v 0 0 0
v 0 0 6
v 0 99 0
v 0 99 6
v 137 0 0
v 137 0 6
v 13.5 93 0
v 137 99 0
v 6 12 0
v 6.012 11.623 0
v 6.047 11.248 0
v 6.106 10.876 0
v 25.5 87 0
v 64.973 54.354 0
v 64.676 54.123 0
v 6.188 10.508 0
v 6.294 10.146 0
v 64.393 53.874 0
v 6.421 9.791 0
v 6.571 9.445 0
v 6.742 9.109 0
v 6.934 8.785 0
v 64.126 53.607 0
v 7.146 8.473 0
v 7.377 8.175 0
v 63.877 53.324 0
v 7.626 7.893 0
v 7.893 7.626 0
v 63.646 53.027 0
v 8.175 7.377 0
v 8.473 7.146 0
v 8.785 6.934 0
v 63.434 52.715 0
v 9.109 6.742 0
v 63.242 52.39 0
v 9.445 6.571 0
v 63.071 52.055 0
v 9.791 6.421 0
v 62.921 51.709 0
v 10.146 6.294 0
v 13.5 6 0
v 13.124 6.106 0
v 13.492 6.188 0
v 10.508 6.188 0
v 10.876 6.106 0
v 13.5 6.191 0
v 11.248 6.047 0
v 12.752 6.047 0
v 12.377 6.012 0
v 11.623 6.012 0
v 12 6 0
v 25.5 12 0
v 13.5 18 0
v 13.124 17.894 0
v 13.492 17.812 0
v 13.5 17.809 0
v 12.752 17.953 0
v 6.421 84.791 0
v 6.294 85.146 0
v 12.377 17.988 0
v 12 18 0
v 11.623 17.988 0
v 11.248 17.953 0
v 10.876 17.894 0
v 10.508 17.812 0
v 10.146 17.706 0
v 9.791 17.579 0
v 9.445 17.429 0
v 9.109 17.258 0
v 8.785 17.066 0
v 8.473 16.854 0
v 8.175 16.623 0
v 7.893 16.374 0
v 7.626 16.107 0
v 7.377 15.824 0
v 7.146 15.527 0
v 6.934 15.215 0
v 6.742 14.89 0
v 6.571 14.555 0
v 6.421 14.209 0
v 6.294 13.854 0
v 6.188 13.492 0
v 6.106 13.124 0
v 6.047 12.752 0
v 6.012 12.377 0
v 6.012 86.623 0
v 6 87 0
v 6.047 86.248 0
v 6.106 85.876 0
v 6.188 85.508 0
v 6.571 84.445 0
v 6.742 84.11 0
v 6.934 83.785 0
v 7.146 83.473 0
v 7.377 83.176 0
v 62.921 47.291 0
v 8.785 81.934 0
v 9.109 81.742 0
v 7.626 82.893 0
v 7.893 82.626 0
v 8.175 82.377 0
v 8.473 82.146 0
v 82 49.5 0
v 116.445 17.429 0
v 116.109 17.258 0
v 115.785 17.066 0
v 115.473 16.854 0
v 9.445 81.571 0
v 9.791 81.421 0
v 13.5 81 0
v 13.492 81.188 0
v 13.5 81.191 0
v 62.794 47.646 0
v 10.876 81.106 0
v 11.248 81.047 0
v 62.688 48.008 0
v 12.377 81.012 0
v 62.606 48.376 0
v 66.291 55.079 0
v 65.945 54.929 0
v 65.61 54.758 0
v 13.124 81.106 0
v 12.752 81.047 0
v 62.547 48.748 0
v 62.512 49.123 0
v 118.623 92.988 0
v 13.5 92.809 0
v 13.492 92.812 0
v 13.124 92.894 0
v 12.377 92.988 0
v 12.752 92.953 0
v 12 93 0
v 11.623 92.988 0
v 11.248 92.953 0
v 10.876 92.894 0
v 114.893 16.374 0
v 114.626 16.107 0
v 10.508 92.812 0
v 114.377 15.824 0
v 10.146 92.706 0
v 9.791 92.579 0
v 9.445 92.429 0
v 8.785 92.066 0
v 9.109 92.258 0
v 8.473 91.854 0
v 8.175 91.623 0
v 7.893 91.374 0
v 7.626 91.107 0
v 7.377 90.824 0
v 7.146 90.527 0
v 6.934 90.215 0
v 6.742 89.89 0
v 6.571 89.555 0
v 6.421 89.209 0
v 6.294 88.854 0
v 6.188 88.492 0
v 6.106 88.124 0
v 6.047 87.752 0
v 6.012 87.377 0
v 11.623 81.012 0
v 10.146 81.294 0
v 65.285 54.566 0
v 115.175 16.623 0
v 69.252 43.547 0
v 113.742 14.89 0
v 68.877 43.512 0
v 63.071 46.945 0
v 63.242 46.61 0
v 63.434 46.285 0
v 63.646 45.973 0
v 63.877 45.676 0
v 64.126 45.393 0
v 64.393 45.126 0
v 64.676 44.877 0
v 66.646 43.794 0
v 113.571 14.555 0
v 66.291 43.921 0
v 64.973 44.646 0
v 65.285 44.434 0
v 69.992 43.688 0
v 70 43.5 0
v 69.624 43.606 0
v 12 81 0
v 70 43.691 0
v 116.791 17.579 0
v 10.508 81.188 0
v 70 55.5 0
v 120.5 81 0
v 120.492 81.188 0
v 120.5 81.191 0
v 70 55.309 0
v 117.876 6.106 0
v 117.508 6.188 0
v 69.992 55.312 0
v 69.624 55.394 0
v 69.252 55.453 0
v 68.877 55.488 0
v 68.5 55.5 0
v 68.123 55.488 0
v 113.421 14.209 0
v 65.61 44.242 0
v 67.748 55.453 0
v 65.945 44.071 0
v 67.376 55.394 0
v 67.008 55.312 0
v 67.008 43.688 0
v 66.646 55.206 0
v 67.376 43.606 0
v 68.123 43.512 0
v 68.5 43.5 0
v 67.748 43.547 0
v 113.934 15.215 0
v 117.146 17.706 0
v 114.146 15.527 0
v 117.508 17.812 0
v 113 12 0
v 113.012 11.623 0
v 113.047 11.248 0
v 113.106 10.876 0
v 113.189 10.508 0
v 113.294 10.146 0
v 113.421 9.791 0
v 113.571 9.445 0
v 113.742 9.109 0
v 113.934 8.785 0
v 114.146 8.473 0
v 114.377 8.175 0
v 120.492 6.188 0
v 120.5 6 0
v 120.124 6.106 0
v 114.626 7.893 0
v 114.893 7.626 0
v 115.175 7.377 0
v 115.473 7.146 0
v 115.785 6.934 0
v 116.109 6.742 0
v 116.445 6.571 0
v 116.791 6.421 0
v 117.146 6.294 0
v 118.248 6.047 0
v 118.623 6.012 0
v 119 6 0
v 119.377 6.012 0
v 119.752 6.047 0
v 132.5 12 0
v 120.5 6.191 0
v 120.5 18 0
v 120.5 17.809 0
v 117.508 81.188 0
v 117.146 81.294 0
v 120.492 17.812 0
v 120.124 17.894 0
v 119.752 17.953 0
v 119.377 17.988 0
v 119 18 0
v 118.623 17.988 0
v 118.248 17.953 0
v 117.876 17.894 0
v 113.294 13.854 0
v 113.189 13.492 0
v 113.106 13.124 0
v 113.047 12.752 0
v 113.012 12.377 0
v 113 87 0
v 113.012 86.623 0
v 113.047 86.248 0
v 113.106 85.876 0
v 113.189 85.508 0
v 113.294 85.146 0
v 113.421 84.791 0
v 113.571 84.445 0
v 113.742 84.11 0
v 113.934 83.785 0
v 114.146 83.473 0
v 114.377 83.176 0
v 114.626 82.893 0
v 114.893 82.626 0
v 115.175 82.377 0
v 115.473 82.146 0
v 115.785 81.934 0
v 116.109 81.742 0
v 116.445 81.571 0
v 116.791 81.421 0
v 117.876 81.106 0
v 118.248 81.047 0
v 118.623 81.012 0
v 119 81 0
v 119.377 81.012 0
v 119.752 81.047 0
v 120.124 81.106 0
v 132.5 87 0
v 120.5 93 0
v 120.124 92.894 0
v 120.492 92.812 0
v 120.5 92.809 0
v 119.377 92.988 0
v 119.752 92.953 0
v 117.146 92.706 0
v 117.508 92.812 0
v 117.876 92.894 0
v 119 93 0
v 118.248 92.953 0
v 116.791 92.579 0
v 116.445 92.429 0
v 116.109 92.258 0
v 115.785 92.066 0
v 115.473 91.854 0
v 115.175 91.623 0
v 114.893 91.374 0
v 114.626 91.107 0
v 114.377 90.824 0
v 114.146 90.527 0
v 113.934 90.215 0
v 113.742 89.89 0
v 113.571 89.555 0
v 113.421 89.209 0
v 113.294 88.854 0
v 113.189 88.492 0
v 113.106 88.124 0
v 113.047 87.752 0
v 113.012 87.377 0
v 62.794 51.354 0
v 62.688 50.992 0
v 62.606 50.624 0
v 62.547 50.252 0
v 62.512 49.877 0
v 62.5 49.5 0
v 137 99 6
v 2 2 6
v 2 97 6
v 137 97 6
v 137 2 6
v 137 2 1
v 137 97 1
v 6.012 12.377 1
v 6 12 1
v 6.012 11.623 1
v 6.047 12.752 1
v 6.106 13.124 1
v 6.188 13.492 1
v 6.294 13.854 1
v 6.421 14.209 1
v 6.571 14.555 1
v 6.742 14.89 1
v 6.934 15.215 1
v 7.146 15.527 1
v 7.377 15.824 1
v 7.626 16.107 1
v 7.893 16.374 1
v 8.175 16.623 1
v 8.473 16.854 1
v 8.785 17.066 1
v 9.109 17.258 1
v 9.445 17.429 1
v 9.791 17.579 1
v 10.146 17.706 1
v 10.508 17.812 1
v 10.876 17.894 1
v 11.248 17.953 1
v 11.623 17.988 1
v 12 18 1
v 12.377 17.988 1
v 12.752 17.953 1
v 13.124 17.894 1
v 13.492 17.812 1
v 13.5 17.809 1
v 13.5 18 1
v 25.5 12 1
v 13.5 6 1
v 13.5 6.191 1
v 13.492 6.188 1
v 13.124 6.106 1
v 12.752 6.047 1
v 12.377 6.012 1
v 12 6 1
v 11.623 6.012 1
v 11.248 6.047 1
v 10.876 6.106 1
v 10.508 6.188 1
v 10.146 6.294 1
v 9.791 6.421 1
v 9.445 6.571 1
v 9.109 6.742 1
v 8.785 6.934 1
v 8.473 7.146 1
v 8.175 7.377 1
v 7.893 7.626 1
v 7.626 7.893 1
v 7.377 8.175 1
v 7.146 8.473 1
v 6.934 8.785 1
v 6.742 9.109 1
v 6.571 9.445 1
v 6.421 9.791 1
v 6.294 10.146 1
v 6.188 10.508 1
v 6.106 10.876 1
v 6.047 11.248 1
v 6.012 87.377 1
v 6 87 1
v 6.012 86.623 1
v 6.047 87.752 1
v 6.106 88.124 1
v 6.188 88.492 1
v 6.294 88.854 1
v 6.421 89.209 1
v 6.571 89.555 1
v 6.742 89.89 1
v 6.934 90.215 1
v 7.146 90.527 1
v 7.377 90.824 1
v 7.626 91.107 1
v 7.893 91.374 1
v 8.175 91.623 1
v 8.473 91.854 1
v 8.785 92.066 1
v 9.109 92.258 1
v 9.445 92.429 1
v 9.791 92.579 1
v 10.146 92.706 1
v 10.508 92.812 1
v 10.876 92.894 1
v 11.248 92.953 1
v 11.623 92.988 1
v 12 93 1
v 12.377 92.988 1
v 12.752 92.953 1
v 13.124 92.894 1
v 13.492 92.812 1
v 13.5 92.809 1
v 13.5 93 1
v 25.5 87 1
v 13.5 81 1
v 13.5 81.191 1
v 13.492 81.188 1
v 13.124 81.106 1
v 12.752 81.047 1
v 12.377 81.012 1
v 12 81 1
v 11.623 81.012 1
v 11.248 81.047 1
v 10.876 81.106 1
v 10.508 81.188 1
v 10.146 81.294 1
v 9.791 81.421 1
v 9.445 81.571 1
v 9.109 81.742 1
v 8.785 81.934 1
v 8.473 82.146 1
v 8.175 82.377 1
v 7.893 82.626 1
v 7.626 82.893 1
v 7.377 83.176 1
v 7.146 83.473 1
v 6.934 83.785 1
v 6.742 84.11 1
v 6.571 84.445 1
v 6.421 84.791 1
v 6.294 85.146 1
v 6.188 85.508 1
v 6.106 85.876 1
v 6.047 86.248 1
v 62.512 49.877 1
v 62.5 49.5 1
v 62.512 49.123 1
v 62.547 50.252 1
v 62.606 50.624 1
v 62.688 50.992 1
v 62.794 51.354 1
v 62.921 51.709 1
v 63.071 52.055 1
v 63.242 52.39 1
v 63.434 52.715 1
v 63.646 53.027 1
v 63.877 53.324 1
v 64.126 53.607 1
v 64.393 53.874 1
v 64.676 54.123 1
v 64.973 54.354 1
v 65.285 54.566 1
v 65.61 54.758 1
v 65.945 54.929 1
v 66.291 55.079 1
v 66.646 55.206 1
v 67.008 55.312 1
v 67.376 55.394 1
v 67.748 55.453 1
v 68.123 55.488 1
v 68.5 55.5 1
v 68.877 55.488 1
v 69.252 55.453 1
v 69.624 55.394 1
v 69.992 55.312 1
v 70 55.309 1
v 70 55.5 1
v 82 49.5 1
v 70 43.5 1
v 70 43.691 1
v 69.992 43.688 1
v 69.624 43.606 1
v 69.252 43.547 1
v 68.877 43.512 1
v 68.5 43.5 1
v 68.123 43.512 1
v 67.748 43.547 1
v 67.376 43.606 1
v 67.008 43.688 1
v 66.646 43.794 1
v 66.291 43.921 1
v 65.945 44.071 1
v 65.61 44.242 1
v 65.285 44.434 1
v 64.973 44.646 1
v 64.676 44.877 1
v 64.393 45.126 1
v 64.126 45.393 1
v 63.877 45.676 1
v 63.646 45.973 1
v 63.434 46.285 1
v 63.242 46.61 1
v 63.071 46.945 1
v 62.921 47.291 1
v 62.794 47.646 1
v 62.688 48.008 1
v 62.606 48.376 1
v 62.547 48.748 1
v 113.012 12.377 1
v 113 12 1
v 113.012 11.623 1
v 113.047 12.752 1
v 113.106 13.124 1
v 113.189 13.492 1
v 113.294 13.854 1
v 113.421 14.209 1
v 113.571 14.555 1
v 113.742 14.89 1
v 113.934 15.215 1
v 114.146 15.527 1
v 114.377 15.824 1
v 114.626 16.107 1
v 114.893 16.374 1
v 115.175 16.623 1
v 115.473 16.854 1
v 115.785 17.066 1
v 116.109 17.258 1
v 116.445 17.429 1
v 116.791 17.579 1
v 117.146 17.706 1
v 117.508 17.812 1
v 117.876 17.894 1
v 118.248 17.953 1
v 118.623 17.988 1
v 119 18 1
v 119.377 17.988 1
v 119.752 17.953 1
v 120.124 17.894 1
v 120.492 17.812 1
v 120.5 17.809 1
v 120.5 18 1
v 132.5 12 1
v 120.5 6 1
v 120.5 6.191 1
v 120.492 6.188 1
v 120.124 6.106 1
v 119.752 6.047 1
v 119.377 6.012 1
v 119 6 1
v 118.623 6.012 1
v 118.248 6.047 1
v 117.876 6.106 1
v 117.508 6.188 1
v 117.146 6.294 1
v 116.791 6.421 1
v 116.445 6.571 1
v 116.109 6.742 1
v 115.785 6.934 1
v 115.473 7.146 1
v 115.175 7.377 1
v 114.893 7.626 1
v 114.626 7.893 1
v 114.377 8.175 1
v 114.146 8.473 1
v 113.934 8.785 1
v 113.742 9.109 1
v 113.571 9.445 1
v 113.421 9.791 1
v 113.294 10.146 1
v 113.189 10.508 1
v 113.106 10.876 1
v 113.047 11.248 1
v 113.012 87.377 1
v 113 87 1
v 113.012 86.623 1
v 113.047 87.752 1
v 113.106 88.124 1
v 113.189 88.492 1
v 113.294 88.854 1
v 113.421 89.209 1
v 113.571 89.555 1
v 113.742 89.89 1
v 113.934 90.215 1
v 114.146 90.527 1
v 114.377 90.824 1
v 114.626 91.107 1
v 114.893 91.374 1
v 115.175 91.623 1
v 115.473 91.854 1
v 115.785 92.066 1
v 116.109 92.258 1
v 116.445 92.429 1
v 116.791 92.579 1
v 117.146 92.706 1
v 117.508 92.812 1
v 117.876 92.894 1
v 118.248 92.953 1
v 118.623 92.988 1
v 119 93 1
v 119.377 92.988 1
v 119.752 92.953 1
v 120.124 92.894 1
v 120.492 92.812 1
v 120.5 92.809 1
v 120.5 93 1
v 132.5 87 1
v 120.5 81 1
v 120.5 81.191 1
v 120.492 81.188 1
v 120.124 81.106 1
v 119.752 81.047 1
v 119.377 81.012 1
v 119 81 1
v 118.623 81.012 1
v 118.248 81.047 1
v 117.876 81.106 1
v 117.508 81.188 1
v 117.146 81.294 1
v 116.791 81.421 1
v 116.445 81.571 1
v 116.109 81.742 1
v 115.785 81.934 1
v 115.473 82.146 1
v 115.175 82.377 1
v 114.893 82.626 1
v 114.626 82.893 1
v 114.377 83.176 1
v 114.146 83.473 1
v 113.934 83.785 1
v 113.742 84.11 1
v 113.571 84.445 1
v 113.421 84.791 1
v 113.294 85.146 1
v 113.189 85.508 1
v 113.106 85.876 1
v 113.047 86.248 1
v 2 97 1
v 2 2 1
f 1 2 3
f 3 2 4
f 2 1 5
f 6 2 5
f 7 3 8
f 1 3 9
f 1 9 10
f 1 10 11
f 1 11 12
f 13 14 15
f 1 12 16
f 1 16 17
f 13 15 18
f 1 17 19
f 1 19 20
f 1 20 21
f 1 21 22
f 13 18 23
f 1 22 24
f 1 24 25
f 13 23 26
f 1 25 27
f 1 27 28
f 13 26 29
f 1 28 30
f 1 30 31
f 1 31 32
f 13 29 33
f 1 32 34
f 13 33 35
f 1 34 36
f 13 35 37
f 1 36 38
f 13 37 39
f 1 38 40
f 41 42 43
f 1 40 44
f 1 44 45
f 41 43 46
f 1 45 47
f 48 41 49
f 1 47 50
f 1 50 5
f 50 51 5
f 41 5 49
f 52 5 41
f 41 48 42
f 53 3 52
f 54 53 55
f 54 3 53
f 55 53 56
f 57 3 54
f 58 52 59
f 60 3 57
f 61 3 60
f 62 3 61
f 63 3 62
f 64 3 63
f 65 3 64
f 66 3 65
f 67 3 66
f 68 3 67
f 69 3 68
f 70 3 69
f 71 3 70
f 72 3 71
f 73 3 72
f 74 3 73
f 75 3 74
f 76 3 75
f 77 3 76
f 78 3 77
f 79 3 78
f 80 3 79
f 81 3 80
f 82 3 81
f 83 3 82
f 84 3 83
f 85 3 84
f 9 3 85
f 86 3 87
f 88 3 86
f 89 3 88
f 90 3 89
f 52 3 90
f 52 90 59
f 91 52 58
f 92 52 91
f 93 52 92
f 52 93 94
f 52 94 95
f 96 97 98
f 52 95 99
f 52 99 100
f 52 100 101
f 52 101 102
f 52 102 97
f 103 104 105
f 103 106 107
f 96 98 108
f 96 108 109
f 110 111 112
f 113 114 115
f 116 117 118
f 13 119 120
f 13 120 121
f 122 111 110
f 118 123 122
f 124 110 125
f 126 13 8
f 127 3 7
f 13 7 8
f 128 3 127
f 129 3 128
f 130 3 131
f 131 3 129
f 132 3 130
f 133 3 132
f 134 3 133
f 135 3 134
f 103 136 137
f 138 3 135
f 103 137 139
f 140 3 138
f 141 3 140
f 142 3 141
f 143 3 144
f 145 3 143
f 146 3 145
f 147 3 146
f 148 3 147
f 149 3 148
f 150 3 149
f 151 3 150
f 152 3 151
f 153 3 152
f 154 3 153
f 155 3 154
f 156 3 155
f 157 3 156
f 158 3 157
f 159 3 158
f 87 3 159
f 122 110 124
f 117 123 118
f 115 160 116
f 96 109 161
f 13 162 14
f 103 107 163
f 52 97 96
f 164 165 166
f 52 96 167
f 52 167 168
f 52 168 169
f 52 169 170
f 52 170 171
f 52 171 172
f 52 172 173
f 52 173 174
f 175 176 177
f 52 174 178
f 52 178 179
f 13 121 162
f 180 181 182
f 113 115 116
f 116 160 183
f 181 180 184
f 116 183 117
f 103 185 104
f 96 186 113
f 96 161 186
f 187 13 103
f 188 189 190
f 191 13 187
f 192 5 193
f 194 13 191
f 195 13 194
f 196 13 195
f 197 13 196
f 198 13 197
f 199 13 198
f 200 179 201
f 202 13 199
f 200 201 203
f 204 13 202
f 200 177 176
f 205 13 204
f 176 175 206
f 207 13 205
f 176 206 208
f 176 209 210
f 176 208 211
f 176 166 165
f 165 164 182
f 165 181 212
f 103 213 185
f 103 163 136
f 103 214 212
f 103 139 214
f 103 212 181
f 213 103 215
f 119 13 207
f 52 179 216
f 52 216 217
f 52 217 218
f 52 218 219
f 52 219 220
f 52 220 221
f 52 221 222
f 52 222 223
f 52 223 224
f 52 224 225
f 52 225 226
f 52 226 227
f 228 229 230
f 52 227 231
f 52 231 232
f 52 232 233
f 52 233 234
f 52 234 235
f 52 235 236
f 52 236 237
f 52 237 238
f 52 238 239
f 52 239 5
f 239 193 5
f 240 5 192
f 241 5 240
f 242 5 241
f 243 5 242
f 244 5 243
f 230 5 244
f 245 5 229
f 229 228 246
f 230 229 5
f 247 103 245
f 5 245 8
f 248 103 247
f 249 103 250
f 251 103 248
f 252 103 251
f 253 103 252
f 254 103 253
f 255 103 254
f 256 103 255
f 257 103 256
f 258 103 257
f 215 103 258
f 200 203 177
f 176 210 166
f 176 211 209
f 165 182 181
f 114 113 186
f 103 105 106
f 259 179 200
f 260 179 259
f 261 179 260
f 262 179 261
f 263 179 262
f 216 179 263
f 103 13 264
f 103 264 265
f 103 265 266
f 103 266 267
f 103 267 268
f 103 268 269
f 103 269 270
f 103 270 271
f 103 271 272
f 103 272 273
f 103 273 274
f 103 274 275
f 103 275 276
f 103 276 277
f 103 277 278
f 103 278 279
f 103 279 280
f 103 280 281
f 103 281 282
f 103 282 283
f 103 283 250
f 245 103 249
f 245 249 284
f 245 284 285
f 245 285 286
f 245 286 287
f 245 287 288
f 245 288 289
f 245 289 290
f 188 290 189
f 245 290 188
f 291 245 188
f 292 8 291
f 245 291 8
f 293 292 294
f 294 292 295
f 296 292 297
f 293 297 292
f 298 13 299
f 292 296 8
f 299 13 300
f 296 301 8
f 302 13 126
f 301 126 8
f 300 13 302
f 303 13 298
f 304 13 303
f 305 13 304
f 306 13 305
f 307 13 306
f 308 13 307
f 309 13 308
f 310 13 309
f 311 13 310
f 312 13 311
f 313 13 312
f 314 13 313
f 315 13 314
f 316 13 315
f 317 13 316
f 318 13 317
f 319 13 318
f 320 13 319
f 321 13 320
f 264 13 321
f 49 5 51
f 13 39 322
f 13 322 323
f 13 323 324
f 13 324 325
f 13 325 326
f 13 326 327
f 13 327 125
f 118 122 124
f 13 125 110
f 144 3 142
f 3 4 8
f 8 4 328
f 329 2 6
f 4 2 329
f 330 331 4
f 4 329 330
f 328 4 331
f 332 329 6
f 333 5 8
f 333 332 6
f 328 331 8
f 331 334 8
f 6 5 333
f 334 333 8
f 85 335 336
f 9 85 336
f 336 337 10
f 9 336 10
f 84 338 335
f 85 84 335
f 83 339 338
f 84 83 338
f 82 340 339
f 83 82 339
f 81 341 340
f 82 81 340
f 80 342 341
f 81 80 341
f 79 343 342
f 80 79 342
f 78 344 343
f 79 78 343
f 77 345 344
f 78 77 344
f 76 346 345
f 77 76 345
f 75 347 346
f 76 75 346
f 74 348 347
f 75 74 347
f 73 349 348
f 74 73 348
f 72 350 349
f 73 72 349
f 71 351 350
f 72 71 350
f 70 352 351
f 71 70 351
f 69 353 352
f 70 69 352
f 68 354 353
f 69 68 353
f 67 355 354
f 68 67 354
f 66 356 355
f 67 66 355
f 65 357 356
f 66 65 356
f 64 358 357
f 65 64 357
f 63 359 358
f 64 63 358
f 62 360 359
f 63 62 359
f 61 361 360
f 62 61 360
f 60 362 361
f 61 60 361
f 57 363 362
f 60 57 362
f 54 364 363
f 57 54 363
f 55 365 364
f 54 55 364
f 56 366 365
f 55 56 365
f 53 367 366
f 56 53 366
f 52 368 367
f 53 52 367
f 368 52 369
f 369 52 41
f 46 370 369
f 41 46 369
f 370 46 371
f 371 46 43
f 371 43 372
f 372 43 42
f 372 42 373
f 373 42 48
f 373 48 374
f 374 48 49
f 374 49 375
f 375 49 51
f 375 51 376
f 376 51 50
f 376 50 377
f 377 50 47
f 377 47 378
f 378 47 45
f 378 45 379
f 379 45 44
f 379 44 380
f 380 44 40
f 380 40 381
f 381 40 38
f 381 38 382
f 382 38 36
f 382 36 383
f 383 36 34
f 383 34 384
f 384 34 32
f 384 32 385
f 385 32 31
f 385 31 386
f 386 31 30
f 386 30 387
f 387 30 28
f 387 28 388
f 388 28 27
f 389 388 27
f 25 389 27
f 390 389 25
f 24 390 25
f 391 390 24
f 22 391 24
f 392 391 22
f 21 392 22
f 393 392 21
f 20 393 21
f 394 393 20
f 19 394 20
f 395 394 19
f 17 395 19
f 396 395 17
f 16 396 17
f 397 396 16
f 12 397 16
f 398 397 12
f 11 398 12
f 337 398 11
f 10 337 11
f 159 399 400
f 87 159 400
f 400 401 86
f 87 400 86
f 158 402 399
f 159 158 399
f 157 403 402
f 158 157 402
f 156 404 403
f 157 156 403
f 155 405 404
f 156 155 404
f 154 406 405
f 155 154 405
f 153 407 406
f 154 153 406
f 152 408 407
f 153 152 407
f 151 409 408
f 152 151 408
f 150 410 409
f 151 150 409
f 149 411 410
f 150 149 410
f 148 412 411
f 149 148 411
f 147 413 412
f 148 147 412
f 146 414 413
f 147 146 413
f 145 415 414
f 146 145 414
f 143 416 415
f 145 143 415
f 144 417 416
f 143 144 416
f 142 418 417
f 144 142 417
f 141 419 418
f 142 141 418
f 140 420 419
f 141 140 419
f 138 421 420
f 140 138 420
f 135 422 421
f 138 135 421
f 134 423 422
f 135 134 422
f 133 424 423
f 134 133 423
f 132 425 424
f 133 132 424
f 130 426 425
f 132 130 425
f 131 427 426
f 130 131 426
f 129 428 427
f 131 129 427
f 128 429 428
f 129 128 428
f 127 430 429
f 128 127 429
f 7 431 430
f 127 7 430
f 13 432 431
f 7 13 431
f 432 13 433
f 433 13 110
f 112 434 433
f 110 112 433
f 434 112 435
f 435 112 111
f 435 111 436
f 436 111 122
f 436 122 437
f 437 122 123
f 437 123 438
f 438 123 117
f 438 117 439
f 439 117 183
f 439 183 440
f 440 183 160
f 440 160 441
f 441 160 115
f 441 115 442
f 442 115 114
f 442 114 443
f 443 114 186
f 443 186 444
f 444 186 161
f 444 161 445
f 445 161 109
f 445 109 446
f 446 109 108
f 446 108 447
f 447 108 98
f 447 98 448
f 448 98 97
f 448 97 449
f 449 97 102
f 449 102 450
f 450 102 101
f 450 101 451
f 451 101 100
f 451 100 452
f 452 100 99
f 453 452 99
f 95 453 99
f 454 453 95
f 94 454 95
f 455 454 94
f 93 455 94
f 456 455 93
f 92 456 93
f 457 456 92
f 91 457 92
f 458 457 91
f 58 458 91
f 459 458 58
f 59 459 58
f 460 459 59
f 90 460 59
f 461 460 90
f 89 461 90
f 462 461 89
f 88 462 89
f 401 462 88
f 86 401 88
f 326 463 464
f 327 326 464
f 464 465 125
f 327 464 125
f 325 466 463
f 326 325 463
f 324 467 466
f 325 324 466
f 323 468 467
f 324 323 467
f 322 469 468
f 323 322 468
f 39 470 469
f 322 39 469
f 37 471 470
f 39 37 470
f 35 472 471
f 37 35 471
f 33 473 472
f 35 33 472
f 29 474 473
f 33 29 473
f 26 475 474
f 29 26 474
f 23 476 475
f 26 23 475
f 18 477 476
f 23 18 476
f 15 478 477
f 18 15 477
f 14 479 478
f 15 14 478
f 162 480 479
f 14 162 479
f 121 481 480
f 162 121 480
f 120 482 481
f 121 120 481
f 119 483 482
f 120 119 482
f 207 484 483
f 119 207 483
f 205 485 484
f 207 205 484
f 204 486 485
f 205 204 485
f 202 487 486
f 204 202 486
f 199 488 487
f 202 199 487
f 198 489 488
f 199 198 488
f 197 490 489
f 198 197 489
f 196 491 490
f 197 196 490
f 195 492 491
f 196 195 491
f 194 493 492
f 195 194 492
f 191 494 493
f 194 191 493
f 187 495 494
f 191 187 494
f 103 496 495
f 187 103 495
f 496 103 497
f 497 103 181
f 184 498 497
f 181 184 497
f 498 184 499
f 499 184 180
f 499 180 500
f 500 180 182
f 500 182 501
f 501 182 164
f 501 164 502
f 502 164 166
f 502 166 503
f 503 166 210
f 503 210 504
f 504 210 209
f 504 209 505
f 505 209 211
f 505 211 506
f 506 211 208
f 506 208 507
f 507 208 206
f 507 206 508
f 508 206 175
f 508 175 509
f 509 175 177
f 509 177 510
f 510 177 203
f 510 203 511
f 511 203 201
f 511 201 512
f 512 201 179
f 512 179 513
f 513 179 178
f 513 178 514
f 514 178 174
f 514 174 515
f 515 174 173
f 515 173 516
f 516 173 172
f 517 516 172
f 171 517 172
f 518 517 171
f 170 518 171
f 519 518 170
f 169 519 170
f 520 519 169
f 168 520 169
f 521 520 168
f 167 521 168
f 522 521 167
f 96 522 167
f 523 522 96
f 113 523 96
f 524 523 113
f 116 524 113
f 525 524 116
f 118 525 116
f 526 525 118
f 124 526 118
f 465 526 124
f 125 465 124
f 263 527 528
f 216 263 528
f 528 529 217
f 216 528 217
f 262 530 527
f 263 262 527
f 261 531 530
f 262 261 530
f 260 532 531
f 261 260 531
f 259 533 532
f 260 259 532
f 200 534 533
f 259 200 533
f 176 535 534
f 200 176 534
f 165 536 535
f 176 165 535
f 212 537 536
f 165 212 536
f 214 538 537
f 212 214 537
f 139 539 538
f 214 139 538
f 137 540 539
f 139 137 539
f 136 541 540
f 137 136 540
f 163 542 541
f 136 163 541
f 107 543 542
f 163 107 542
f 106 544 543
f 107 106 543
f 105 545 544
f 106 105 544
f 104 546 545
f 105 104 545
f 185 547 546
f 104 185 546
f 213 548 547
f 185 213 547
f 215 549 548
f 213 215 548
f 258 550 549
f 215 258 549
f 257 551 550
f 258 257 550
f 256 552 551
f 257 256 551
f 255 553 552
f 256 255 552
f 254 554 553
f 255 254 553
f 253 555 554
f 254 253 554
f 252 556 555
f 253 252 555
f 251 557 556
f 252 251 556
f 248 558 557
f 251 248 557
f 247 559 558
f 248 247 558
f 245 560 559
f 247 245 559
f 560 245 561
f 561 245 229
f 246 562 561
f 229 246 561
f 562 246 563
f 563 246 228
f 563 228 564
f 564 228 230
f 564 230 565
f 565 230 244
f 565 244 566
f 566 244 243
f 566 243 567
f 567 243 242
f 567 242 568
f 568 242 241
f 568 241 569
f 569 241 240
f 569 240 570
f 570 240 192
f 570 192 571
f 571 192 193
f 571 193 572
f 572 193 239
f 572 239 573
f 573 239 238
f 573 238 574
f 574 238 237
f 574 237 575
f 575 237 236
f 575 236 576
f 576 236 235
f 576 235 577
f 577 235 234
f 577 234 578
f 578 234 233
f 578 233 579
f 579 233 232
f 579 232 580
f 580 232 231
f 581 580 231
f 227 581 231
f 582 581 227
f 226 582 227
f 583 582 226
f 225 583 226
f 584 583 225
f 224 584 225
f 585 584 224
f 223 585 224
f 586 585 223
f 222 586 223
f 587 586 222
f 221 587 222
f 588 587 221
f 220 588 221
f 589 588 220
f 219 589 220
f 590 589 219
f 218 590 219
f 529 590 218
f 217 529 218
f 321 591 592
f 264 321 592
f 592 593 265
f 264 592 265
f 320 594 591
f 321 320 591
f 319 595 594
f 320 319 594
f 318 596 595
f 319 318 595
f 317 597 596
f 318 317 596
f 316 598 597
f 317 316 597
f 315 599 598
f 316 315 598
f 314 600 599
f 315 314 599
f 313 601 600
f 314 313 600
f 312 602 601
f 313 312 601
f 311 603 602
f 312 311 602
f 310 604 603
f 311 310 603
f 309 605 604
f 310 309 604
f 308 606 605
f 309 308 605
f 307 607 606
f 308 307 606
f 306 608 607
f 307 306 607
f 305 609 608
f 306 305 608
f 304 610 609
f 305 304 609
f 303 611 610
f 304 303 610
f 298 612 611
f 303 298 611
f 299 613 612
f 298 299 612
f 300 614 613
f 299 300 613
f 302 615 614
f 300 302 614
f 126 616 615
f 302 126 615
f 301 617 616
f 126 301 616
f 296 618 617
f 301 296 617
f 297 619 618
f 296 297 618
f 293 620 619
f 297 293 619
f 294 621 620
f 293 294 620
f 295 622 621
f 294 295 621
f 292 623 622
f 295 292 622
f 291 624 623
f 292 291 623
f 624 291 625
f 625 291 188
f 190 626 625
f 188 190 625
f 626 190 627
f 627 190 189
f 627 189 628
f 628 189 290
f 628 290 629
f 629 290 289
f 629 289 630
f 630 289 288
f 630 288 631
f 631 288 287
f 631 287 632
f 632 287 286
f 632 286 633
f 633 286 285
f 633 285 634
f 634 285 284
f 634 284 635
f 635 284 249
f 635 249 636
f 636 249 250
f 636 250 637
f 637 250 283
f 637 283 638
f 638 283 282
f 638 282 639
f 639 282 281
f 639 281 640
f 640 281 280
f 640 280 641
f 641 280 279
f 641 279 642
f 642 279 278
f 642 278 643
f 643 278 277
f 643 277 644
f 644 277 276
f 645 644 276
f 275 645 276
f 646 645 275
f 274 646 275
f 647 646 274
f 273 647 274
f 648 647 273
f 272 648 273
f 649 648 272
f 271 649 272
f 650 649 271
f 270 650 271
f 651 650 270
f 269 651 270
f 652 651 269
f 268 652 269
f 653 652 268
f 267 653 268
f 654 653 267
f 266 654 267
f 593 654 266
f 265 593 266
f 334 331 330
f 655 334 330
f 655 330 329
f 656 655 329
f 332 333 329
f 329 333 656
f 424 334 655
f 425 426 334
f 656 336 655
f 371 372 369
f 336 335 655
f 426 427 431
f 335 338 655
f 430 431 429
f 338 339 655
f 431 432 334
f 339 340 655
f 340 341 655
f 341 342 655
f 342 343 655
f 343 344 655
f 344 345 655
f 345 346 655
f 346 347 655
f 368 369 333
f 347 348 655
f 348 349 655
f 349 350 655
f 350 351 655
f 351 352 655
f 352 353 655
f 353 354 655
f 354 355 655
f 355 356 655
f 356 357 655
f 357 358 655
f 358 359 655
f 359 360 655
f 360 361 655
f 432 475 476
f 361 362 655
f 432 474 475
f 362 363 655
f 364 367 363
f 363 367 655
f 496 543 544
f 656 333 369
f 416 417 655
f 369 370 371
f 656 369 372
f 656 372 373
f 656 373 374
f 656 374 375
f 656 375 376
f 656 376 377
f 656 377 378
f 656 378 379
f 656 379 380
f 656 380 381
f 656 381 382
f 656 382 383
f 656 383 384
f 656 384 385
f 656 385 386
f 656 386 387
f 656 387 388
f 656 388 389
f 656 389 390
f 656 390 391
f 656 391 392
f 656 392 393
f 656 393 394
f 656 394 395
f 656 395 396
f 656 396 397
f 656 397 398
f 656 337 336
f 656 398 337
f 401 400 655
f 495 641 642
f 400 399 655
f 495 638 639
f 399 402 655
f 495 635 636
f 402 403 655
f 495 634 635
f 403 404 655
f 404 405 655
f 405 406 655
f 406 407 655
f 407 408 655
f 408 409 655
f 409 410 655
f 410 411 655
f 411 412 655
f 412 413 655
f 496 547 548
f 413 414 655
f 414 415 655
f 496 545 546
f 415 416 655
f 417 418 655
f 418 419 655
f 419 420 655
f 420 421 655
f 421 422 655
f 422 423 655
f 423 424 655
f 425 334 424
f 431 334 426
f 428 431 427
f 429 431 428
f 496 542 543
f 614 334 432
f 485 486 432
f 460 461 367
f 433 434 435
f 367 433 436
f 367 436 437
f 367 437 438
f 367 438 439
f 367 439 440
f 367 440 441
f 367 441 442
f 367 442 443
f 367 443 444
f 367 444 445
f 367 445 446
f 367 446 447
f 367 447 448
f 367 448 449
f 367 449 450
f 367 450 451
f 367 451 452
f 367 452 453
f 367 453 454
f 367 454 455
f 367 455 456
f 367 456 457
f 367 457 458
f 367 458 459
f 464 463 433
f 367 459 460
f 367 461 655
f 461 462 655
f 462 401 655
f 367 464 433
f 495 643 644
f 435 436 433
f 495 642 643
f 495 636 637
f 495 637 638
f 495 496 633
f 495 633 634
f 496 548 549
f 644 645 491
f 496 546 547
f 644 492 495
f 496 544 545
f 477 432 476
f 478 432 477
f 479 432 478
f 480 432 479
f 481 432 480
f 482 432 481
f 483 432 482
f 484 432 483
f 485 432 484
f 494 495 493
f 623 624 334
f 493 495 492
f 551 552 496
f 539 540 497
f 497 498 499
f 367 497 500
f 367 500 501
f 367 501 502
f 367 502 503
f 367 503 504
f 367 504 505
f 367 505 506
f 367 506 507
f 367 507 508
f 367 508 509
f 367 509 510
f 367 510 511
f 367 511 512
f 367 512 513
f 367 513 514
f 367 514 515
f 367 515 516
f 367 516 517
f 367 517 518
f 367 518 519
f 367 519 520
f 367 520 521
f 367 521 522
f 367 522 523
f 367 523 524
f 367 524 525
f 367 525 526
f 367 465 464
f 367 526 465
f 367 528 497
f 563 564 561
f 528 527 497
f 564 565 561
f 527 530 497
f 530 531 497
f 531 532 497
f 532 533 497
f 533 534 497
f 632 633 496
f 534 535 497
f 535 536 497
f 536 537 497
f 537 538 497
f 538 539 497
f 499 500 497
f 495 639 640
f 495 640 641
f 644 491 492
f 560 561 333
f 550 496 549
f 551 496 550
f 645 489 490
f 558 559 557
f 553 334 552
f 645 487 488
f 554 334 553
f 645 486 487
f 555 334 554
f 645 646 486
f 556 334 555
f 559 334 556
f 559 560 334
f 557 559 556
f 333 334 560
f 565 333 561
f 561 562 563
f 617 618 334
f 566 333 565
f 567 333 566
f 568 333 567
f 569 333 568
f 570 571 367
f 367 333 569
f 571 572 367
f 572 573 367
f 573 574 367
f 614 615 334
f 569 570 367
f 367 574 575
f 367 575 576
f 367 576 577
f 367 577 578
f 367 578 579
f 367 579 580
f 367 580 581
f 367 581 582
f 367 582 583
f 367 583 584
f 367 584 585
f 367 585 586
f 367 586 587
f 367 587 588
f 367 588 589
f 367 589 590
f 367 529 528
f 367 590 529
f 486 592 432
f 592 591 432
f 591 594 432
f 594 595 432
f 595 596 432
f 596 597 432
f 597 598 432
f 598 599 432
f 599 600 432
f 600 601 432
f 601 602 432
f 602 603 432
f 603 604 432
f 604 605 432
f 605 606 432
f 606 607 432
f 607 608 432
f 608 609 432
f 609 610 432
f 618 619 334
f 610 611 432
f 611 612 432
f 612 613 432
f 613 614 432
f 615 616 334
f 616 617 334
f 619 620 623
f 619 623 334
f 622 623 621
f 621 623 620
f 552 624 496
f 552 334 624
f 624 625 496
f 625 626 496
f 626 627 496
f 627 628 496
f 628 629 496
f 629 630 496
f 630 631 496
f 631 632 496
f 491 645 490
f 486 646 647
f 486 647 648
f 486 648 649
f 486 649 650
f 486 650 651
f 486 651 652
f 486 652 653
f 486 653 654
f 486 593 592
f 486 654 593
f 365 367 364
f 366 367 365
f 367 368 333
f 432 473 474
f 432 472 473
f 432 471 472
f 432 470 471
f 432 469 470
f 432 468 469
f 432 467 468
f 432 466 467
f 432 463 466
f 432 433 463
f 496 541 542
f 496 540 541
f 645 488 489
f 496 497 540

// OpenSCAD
longueur=133; //117 pour v1
largeur=95; //86 pour v1
ep=2;
r_pointe=6;
dec=1.5;
height=10;
tol=2;

module goutte(){
	union(){
		cylinder(h = height, r = r_pointe, $fn=100);
		polyhedron(
  points=[[dec,-r_pointe,0],[dec,r_pointe,0],[dec+r_pointe*2,0,0],[dec,-r_pointe,height],[dec,r_pointe,height],[dec+r_pointe*2,0,height]], 
  triangles=[[1,0,2],[3,2,0],[3,5,2],[0,1,3],[3,1,4],[1,5,4],[1,2,5],[4,5,3]]);	
	}
}

module sanguinololu_top(){
	difference(){
		cube([longueur+ep*2, largeur+ep*2, ep+4]);

		translate([ep,ep,ep-1]){cube([longueur+10, largeur, 10]);}

		translate([ep*2+r_pointe+tol,ep*2+r_pointe+tol,-5]){goutte();}
		translate([ep*2+r_pointe+tol,largeur-r_pointe-ep,-5]){goutte();}
		translate([longueur-r_pointe-ep*4,ep*2+r_pointe+tol,-5]){goutte();}
		translate([longueur-r_pointe-ep*4,largeur-r_pointe-ep,-5]){goutte();}
		translate([(longueur+ep*2)/2,(largeur+ep*2)/2,-5]){goutte();}
	}
}
sanguinololu_top();
